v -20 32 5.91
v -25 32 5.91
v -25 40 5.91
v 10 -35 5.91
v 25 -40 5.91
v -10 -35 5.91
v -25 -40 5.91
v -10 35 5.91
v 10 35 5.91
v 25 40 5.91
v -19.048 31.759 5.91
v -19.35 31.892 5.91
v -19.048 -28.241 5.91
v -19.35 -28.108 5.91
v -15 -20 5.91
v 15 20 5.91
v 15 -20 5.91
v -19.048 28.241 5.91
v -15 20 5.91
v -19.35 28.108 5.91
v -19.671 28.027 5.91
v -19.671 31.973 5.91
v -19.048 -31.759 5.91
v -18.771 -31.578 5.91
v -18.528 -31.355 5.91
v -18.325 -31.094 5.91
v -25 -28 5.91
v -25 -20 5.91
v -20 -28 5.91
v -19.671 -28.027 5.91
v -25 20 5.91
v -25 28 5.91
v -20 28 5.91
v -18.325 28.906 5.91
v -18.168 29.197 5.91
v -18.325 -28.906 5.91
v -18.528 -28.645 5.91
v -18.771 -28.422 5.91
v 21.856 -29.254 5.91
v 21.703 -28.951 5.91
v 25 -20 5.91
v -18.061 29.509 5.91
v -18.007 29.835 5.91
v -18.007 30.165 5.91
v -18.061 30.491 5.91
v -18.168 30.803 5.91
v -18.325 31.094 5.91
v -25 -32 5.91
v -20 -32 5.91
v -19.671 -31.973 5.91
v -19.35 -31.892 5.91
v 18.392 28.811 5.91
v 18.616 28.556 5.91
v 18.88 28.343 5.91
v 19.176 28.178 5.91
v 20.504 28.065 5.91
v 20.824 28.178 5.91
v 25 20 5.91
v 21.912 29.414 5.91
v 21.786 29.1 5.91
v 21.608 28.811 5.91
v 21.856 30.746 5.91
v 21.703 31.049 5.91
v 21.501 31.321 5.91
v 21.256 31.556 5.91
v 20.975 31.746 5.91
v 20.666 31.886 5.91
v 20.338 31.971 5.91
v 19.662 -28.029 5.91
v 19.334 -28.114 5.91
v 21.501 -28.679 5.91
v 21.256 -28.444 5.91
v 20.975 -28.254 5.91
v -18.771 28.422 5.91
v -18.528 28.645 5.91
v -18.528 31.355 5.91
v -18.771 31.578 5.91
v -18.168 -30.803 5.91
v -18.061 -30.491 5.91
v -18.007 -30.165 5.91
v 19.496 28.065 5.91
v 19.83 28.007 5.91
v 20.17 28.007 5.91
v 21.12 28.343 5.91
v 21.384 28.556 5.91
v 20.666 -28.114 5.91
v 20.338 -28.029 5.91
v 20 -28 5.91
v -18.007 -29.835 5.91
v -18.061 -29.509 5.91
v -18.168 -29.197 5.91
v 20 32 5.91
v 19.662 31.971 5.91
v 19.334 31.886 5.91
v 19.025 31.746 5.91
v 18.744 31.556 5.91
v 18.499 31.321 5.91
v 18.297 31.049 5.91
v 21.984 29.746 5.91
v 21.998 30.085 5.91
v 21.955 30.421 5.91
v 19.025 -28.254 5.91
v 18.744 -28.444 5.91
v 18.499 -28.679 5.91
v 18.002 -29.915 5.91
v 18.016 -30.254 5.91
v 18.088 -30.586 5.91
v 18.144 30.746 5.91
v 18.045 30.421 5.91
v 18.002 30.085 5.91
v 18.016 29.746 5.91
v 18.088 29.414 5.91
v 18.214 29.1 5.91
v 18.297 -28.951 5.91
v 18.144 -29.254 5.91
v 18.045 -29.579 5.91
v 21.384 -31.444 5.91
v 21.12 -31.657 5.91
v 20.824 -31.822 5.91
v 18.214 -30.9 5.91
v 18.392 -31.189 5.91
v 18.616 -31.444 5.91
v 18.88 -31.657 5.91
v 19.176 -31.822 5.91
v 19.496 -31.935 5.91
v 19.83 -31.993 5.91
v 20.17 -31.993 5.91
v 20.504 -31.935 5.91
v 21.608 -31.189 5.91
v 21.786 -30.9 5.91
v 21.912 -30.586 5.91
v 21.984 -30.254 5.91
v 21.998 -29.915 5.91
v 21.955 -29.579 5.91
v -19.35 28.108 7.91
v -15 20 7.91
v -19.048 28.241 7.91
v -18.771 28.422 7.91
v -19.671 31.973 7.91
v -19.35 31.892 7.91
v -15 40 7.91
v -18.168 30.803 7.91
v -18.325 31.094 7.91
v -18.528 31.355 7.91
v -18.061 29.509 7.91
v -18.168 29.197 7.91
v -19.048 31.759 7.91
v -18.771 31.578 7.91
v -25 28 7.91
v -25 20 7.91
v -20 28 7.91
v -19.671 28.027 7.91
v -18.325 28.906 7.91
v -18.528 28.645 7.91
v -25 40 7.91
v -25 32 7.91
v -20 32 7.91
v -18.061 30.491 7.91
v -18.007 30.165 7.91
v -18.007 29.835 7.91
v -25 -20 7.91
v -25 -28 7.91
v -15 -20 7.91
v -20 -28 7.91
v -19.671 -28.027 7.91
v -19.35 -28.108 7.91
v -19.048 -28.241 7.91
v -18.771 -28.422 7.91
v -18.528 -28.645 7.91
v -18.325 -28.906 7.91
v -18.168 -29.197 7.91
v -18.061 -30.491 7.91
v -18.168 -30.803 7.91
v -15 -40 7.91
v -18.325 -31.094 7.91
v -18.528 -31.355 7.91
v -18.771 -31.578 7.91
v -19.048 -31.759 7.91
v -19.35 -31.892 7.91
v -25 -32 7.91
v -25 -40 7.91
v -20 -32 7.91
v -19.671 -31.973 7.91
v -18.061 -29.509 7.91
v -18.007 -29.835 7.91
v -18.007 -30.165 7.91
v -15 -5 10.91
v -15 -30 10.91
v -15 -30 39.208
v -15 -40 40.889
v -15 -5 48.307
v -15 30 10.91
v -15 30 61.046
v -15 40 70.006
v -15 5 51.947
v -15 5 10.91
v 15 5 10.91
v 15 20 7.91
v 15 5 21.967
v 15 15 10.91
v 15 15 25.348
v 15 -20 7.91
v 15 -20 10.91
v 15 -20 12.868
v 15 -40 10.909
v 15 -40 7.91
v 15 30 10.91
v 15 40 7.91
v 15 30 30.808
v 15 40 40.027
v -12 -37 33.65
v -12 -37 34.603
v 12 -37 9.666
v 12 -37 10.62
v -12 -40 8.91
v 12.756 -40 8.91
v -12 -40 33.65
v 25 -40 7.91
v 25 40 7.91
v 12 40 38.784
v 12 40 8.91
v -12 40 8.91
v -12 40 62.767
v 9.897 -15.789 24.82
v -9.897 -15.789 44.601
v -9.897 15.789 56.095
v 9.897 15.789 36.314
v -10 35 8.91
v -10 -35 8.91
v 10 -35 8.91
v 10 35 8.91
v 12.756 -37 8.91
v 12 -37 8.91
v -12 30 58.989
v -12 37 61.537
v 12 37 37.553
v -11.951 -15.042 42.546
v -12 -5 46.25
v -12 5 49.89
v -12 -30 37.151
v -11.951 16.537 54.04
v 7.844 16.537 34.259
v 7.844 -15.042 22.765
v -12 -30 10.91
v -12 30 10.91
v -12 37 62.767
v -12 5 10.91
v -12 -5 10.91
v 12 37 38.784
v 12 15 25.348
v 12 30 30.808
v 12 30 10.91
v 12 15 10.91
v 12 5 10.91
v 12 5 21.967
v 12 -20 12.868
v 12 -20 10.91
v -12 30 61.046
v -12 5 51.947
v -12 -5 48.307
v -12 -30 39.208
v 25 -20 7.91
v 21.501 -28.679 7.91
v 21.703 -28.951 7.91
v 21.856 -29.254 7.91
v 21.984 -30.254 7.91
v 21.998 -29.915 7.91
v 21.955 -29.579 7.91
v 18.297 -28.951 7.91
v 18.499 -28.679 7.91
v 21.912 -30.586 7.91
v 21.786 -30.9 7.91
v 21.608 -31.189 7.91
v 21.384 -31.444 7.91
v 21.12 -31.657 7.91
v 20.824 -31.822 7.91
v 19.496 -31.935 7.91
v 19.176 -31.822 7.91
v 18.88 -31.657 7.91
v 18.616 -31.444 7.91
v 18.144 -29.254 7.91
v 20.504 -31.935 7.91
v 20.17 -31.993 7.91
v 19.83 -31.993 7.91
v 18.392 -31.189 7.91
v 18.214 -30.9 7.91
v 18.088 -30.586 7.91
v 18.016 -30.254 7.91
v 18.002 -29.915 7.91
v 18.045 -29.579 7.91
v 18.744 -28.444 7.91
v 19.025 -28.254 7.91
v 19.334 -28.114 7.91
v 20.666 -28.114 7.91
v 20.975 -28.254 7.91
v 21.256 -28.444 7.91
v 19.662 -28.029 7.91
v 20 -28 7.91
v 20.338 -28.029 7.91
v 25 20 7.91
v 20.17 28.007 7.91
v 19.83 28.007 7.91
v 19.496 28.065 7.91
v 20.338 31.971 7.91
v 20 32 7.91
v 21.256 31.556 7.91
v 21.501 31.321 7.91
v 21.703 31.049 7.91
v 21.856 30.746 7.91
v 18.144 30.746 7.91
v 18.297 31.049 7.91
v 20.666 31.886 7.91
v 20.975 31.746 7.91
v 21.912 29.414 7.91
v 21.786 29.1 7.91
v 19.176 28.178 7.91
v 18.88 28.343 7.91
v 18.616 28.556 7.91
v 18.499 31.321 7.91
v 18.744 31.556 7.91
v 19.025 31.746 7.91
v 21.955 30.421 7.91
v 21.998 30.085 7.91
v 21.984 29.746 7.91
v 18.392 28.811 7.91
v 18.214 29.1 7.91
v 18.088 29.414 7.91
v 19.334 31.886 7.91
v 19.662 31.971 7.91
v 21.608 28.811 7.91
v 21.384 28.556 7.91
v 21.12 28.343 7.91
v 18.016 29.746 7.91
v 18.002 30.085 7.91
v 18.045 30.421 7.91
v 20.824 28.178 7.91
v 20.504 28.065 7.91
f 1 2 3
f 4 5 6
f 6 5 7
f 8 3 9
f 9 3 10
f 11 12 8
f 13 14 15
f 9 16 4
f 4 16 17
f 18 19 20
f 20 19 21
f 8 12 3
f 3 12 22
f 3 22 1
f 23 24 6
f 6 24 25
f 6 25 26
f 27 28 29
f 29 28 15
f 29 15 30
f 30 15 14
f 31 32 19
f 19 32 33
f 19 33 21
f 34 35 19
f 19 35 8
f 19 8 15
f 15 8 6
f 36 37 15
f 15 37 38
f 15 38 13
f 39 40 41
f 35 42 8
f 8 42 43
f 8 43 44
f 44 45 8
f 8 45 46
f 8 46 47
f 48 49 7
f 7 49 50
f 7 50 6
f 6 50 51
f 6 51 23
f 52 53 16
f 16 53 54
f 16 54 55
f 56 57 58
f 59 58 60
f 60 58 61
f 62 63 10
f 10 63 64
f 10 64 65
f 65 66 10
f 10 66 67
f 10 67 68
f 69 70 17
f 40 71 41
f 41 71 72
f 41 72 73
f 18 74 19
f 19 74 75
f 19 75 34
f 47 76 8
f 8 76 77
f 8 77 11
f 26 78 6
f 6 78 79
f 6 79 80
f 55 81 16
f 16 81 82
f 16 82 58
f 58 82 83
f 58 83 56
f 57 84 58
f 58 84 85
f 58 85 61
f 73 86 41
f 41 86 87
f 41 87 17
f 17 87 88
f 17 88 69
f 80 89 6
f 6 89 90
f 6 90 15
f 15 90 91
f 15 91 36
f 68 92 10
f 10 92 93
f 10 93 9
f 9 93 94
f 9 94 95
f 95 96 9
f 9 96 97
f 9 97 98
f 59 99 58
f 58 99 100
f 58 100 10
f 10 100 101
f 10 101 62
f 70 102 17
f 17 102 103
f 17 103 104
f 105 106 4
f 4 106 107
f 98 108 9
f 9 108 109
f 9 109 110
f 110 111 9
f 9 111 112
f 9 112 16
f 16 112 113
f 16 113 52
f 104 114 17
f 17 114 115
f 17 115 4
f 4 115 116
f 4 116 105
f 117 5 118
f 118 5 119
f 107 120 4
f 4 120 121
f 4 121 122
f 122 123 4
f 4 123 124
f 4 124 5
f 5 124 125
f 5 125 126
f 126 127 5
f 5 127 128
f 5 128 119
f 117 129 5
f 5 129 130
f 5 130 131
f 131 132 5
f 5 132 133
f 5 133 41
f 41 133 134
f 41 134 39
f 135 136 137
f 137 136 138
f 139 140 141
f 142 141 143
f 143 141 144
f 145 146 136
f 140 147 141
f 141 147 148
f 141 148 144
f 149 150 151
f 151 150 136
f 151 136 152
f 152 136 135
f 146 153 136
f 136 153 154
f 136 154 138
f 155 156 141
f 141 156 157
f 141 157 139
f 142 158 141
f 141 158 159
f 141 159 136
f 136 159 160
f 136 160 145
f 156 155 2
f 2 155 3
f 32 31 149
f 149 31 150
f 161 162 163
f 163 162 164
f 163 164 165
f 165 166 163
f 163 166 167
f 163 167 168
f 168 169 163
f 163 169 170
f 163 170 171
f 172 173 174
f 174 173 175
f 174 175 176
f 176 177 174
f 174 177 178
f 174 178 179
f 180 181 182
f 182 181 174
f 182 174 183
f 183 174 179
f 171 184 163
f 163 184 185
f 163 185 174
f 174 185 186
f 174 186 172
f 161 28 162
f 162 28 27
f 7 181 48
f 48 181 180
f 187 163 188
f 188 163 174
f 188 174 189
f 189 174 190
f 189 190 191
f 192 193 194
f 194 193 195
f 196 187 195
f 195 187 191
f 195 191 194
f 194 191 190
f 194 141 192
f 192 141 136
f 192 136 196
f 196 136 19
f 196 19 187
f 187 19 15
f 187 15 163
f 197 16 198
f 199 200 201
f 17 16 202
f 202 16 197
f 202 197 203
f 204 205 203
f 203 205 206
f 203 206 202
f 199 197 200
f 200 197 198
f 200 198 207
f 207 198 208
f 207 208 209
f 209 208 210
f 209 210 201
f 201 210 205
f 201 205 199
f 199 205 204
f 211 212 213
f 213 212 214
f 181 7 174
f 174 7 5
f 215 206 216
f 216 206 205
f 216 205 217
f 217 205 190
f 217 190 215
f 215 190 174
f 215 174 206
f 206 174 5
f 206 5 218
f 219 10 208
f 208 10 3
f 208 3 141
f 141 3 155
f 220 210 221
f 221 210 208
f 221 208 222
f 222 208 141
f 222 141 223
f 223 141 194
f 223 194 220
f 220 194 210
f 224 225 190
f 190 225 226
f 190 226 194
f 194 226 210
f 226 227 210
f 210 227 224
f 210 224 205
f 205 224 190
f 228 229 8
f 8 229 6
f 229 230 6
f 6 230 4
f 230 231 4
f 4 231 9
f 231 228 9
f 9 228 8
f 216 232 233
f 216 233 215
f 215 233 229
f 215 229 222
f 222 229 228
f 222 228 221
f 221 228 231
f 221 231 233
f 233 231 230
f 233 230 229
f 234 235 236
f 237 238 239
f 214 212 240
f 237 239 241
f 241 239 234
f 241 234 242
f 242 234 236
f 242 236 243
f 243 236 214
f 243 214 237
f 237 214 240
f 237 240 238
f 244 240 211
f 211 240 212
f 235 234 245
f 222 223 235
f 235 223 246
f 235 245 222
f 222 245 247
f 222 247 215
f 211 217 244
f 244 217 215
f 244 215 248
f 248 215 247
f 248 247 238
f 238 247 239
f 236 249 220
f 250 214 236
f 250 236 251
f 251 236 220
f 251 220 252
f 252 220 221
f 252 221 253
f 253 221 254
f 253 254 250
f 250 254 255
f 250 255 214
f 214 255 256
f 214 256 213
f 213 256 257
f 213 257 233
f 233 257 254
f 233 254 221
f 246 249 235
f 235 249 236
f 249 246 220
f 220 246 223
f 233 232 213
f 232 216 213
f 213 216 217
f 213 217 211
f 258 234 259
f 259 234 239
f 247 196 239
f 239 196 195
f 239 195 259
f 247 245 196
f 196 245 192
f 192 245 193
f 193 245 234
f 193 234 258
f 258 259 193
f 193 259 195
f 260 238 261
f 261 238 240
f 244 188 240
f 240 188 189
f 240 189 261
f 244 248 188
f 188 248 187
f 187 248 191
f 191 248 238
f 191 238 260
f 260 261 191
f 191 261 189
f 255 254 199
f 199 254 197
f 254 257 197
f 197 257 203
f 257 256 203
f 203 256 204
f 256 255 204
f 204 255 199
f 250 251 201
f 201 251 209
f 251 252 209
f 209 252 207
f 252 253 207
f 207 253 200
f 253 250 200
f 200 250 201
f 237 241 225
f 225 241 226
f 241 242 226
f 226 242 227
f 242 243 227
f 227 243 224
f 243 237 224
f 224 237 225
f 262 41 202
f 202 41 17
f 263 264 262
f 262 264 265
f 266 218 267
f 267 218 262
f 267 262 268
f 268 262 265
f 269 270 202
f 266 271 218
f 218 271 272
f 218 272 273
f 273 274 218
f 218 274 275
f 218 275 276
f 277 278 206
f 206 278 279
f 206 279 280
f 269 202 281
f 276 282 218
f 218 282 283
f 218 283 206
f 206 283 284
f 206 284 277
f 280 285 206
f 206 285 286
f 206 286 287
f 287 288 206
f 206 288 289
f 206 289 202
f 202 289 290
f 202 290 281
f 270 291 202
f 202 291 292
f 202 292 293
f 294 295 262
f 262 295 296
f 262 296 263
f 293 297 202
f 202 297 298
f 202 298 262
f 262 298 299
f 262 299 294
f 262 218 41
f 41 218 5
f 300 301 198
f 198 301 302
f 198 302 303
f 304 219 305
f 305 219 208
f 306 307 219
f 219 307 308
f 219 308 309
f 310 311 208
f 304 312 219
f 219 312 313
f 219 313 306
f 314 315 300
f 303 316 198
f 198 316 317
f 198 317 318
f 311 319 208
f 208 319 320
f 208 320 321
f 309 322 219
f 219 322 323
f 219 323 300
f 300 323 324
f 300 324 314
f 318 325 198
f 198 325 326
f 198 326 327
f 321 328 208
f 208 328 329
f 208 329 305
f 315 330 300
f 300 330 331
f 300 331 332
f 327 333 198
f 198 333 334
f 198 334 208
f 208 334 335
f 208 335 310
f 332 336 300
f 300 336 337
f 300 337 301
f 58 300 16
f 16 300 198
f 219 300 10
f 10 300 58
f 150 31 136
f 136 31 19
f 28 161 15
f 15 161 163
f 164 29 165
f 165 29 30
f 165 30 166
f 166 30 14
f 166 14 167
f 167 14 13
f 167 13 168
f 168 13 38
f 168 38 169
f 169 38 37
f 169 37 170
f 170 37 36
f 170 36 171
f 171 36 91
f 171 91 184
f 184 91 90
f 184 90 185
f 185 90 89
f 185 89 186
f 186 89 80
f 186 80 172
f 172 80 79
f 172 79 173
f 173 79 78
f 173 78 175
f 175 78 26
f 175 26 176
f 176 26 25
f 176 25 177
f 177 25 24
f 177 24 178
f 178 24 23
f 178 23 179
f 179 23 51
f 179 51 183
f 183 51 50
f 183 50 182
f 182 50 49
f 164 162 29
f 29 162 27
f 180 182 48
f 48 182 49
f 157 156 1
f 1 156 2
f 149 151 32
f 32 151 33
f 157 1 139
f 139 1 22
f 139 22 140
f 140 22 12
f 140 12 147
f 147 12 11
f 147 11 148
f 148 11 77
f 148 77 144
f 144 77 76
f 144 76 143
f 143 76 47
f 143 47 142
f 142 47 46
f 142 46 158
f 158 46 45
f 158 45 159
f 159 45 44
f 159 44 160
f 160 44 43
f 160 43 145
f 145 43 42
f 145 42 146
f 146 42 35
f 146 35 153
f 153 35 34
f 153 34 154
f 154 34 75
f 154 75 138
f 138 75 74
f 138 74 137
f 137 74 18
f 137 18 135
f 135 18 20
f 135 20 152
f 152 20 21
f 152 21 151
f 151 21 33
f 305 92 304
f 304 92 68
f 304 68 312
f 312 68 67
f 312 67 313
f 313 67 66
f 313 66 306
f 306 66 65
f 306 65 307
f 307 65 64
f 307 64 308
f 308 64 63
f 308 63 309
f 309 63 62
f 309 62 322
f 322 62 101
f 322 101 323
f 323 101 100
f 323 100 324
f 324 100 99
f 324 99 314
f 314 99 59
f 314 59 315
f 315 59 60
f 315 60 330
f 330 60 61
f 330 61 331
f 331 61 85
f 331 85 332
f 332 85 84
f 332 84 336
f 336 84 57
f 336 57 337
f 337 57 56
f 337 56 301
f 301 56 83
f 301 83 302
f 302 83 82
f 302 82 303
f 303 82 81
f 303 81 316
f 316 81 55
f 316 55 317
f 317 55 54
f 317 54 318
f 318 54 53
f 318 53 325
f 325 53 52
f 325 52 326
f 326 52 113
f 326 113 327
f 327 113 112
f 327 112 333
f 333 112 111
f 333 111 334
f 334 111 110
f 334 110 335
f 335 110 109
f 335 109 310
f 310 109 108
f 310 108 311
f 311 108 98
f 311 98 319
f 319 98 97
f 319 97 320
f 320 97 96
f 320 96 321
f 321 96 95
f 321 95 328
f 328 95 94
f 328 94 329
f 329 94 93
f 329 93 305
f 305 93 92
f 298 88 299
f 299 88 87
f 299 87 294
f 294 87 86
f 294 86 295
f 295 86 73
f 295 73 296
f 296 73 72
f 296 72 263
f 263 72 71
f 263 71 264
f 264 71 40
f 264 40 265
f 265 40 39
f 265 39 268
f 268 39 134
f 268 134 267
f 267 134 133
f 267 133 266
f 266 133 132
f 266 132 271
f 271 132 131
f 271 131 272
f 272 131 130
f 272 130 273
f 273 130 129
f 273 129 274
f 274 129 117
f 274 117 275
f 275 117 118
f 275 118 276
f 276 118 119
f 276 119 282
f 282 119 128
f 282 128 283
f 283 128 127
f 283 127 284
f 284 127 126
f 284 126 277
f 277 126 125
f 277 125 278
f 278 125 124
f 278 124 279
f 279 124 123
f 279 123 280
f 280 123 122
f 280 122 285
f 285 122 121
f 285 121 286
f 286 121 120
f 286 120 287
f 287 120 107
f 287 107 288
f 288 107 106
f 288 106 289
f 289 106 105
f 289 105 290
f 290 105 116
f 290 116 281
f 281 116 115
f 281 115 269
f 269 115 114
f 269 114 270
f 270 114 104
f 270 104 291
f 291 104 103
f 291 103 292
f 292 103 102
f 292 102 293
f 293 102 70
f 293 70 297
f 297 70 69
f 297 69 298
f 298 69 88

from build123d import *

# Parameters (mm, degrees)
SKETCH_1_W           = 50
SKETCH_1_H           = 80
EXTRUDE_1_DEPTH      = 80
SKETCH_4_W           = 50
SKETCH_4_H           = 160
CUT_REVOLVE_2_ANGLE  = 20
SKETCH_5_W           = 100
SKETCH_5_H           = 160
CUT_REVOLVE_4_ANGLE  = 43.2
SKETCH_6_W           = 10
SKETCH_6_H           = 80
SKETCH_6_W_2         = 10.000248079
CUT_EXTRUDE_1_DEPTH  = 80
SKETCH_7_W           = 5.91
SKETCH_7_H           = 80
CUT_EXTRUDE_2_DEPTH  = 50
SHELL_2_T            = 3
SKETCH_8_W           = 19.999751921
SKETCH_8_H           = 70
CUT_EXTRUDE_3_DEPTH  = 3
CUT_EXTRUDE_4_DEPTH  = 3
CUT_EXTRUDE_5_DEPTH  = 3
CUT_EXTRUDE_6_DEPTH  = 3
CUT_EXTRUDE_7_DEPTH  = 3
CUT_EXTRUDE_9_DEPTH  = 3
SKETCH_18_W          = 2
SKETCH_18_H          = 20
EXTRUDE_2_DEPTH      = 10
SKETCH_19_W          = 2
SKETCH_19_H          = 20
EXTRUDE_3_DEPTH      = 10
SKETCH_20_R          = 2
CUT_EXTRUDE_10_DEPTH = 2


with BuildPart() as part:
    # 草图1 → 凸台-拉伸1 (new body)
    with BuildSketch(Plane.XY):
        Rectangle(SKETCH_1_W, SKETCH_1_H)
    extrude(amount=EXTRUDE_1_DEPTH)

    # 草图4 → 切除-旋转2 (revolve, cut)
    with BuildSketch(Plane.XY.offset(80)):
        with Locations((0, -40)):
            Rectangle(SKETCH_4_W, SKETCH_4_H)
    revolve(axis=Axis((-25, 40, 80), (1, 0, 0)), revolution_arc=CUT_REVOLVE_2_ANGLE, mode=Mode.SUBTRACT)

    # 草图5 → 切除-旋转4 (revolve, cut)
    with BuildSketch(Plane(origin=(0, -21.03239325, 57.786025531), x_dir=(1, 0, 0), z_dir=(0, -0.34202014332566943, 0.9396926207859082))):
        with Locations((25, -15.050683703)):
            Rectangle(SKETCH_5_W, SKETCH_5_H)
    revolve(axis=Axis((-25, 40, 80), (0, 0.9396926207859082, 0.3420201433256695)), revolution_arc=CUT_REVOLVE_4_ANGLE, mode=Mode.SUBTRACT)

    # 草图6 → 切除-拉伸1 (cut)
    with BuildSketch(Plane(origin=(0, 0, 0), x_dir=(-1, 0, 0), z_dir=(0, 0, -1))):
        with Locations((-20, 0)):
            Rectangle(SKETCH_6_W, SKETCH_6_H)
        with Locations((19.99987596, 0)):
            Rectangle(SKETCH_6_W_2, SKETCH_6_H)
    extrude(amount=-CUT_EXTRUDE_1_DEPTH, mode=Mode.SUBTRACT)

    # 草图7 → 切除-拉伸2 (cut)
    with BuildSketch(Plane(origin=(15, 0, 0), x_dir=(0, 0, -1), z_dir=(1, 0, 0))):
        with Locations((-2.955, 0)):
            Rectangle(SKETCH_7_W, SKETCH_7_H)
    extrude(amount=-CUT_EXTRUDE_2_DEPTH, mode=Mode.SUBTRACT)

    # 抽壳2 (no face opened: a closed hollow body)
    add(offset(amount=-SHELL_2_T, mode=Mode.PRIVATE), mode=Mode.SUBTRACT)

    # 草图8 → 切除-拉伸3 (cut)
    with BuildSketch(Plane(origin=(0, 0, 5.91), x_dir=(-1, 0, 0), z_dir=(0, 0, -1))):
        with Locations((-0.000124039, 0)):
            Rectangle(SKETCH_8_W, SKETCH_8_H)
    extrude(amount=-CUT_EXTRUDE_3_DEPTH, mode=Mode.SUBTRACT)

    # 草图9 → 切除-拉伸4 (cut)
    with BuildSketch(Plane(origin=(0, 40, 0), x_dir=(1, 0, 0), z_dir=(0, 1, 0))):
        Polygon((12, -8.91), (-11.999751921, -8.91), (-11.999751921, -62.767250828), (12, -38.783592046), align=None)
    extrude(amount=-CUT_EXTRUDE_4_DEPTH, mode=Mode.SUBTRACT)

    # 草图10 → 切除-拉伸5 (cut)
    with BuildSketch(Plane.XZ.offset(40)):
        Polygon((12.756480566, 8.91), (-11.999751921, 8.91), (-11.999751921, 33.649632087), align=None)
    extrude(amount=-CUT_EXTRUDE_5_DEPTH, mode=Mode.SUBTRACT)

    # 草图11 → 切除-拉伸6 (cut)
    with BuildSketch(Plane.ZY.offset(14.999751921)):
        Polygon((10.91, -30), (10.91, -5), (48.306908226, -5), (39.207652369, -30), align=None)
        Polygon((10.91, 5), (10.91, 30), (61.045866425, 30), (51.946610569, 5), align=None)
    extrude(amount=-CUT_EXTRUDE_6_DEPTH, mode=Mode.SUBTRACT)

    # 草图15 → 切除-拉伸7 (cut)
    with BuildSketch(Plane(origin=(15, 0, 0), x_dir=(0, 0, -1), z_dir=(1, 0, 0))):
        Polygon((-30.80754043, 30), (-10.91, 30), (-10.91, 15), (-25.347986916, 15), align=None)
        Polygon((-10.91, 5), (-10.91, -20), (-12.867719255, -20), (-21.966975112, 5), align=None)
    extrude(amount=-CUT_EXTRUDE_7_DEPTH, mode=Mode.SUBTRACT)

    # 草图17 → 切除-拉伸9 (cut)
    with BuildSketch(Plane(origin=(18.971510682, -6.909698516, 18.984240647), x_dir=(0.7289686274214102, 0.23412889928290287, -0.6432638640215396), z_dir=(0.6845471059286902, -0.24932195443058733, 0.6850064399723311))):
        Polygon((-39.60181704, 0.417311671), (-12.448122913, -6.348160757), (-12.448122913, 27.257474323), (-39.60181704, 34.022946751), align=None)
    extrude(amount=-CUT_EXTRUDE_9_DEPTH, mode=Mode.SUBTRACT)

    # 草图18 → 凸台-拉伸2 (add)
    with BuildSketch(Plane(origin=(15, 0, 0), x_dir=(0, 0, -1), z_dir=(1, 0, 0))):
        with Locations((-6.91, -30)):
            Rectangle(SKETCH_18_W, SKETCH_18_H)
        with Locations((-6.91, 30)):
            Rectangle(SKETCH_18_W, SKETCH_18_H)
    extrude(amount=EXTRUDE_2_DEPTH)

    # 草图19 → 凸台-拉伸3 (add)
    with BuildSketch(Plane.ZY.offset(14.999751921)):
        with Locations((6.91, 30)):
            Rectangle(SKETCH_19_W, SKETCH_19_H)
        with Locations((6.91, -30)):
            Rectangle(SKETCH_19_W, SKETCH_19_H)
    extrude(amount=EXTRUDE_3_DEPTH)

    # 草图20 → 切除-拉伸10 (cut)
    with BuildSketch(Plane(origin=(0, 0, 5.91), x_dir=(-1, 0, 0), z_dir=(0, 0, -1))):
        with BuildLine():
            Line((24.999751921, 32), (19.999751921, 32))
            ThreePointArc((19.999751921, 32), (17.999751921, 30), (19.999751921, 28))
            Line((19.999751921, 28), (24.999751921, 28))
            Line((24.999751921, 28), (24.999751921, 32))
        make_face()
        with BuildLine():
            Line((19.999751921, -32), (24.999751921, -32))
            Line((24.999751921, -32), (24.999751921, -28))
            Line((24.999751921, -28), (19.999751921, -28))
            ThreePointArc((19.999751921, -28), (17.999751921, -30), (19.999751921, -32))
        make_face()
        with Locations(Location((-20, 30, 0), (0, 0, 90))):
            Circle(SKETCH_20_R)
        with Locations(Location((-20, -30, 0), (0, 0, 90))):
            Circle(SKETCH_20_R)
    extrude(amount=-CUT_EXTRUDE_10_DEPTH, mode=Mode.SUBTRACT)


solid = part.part
